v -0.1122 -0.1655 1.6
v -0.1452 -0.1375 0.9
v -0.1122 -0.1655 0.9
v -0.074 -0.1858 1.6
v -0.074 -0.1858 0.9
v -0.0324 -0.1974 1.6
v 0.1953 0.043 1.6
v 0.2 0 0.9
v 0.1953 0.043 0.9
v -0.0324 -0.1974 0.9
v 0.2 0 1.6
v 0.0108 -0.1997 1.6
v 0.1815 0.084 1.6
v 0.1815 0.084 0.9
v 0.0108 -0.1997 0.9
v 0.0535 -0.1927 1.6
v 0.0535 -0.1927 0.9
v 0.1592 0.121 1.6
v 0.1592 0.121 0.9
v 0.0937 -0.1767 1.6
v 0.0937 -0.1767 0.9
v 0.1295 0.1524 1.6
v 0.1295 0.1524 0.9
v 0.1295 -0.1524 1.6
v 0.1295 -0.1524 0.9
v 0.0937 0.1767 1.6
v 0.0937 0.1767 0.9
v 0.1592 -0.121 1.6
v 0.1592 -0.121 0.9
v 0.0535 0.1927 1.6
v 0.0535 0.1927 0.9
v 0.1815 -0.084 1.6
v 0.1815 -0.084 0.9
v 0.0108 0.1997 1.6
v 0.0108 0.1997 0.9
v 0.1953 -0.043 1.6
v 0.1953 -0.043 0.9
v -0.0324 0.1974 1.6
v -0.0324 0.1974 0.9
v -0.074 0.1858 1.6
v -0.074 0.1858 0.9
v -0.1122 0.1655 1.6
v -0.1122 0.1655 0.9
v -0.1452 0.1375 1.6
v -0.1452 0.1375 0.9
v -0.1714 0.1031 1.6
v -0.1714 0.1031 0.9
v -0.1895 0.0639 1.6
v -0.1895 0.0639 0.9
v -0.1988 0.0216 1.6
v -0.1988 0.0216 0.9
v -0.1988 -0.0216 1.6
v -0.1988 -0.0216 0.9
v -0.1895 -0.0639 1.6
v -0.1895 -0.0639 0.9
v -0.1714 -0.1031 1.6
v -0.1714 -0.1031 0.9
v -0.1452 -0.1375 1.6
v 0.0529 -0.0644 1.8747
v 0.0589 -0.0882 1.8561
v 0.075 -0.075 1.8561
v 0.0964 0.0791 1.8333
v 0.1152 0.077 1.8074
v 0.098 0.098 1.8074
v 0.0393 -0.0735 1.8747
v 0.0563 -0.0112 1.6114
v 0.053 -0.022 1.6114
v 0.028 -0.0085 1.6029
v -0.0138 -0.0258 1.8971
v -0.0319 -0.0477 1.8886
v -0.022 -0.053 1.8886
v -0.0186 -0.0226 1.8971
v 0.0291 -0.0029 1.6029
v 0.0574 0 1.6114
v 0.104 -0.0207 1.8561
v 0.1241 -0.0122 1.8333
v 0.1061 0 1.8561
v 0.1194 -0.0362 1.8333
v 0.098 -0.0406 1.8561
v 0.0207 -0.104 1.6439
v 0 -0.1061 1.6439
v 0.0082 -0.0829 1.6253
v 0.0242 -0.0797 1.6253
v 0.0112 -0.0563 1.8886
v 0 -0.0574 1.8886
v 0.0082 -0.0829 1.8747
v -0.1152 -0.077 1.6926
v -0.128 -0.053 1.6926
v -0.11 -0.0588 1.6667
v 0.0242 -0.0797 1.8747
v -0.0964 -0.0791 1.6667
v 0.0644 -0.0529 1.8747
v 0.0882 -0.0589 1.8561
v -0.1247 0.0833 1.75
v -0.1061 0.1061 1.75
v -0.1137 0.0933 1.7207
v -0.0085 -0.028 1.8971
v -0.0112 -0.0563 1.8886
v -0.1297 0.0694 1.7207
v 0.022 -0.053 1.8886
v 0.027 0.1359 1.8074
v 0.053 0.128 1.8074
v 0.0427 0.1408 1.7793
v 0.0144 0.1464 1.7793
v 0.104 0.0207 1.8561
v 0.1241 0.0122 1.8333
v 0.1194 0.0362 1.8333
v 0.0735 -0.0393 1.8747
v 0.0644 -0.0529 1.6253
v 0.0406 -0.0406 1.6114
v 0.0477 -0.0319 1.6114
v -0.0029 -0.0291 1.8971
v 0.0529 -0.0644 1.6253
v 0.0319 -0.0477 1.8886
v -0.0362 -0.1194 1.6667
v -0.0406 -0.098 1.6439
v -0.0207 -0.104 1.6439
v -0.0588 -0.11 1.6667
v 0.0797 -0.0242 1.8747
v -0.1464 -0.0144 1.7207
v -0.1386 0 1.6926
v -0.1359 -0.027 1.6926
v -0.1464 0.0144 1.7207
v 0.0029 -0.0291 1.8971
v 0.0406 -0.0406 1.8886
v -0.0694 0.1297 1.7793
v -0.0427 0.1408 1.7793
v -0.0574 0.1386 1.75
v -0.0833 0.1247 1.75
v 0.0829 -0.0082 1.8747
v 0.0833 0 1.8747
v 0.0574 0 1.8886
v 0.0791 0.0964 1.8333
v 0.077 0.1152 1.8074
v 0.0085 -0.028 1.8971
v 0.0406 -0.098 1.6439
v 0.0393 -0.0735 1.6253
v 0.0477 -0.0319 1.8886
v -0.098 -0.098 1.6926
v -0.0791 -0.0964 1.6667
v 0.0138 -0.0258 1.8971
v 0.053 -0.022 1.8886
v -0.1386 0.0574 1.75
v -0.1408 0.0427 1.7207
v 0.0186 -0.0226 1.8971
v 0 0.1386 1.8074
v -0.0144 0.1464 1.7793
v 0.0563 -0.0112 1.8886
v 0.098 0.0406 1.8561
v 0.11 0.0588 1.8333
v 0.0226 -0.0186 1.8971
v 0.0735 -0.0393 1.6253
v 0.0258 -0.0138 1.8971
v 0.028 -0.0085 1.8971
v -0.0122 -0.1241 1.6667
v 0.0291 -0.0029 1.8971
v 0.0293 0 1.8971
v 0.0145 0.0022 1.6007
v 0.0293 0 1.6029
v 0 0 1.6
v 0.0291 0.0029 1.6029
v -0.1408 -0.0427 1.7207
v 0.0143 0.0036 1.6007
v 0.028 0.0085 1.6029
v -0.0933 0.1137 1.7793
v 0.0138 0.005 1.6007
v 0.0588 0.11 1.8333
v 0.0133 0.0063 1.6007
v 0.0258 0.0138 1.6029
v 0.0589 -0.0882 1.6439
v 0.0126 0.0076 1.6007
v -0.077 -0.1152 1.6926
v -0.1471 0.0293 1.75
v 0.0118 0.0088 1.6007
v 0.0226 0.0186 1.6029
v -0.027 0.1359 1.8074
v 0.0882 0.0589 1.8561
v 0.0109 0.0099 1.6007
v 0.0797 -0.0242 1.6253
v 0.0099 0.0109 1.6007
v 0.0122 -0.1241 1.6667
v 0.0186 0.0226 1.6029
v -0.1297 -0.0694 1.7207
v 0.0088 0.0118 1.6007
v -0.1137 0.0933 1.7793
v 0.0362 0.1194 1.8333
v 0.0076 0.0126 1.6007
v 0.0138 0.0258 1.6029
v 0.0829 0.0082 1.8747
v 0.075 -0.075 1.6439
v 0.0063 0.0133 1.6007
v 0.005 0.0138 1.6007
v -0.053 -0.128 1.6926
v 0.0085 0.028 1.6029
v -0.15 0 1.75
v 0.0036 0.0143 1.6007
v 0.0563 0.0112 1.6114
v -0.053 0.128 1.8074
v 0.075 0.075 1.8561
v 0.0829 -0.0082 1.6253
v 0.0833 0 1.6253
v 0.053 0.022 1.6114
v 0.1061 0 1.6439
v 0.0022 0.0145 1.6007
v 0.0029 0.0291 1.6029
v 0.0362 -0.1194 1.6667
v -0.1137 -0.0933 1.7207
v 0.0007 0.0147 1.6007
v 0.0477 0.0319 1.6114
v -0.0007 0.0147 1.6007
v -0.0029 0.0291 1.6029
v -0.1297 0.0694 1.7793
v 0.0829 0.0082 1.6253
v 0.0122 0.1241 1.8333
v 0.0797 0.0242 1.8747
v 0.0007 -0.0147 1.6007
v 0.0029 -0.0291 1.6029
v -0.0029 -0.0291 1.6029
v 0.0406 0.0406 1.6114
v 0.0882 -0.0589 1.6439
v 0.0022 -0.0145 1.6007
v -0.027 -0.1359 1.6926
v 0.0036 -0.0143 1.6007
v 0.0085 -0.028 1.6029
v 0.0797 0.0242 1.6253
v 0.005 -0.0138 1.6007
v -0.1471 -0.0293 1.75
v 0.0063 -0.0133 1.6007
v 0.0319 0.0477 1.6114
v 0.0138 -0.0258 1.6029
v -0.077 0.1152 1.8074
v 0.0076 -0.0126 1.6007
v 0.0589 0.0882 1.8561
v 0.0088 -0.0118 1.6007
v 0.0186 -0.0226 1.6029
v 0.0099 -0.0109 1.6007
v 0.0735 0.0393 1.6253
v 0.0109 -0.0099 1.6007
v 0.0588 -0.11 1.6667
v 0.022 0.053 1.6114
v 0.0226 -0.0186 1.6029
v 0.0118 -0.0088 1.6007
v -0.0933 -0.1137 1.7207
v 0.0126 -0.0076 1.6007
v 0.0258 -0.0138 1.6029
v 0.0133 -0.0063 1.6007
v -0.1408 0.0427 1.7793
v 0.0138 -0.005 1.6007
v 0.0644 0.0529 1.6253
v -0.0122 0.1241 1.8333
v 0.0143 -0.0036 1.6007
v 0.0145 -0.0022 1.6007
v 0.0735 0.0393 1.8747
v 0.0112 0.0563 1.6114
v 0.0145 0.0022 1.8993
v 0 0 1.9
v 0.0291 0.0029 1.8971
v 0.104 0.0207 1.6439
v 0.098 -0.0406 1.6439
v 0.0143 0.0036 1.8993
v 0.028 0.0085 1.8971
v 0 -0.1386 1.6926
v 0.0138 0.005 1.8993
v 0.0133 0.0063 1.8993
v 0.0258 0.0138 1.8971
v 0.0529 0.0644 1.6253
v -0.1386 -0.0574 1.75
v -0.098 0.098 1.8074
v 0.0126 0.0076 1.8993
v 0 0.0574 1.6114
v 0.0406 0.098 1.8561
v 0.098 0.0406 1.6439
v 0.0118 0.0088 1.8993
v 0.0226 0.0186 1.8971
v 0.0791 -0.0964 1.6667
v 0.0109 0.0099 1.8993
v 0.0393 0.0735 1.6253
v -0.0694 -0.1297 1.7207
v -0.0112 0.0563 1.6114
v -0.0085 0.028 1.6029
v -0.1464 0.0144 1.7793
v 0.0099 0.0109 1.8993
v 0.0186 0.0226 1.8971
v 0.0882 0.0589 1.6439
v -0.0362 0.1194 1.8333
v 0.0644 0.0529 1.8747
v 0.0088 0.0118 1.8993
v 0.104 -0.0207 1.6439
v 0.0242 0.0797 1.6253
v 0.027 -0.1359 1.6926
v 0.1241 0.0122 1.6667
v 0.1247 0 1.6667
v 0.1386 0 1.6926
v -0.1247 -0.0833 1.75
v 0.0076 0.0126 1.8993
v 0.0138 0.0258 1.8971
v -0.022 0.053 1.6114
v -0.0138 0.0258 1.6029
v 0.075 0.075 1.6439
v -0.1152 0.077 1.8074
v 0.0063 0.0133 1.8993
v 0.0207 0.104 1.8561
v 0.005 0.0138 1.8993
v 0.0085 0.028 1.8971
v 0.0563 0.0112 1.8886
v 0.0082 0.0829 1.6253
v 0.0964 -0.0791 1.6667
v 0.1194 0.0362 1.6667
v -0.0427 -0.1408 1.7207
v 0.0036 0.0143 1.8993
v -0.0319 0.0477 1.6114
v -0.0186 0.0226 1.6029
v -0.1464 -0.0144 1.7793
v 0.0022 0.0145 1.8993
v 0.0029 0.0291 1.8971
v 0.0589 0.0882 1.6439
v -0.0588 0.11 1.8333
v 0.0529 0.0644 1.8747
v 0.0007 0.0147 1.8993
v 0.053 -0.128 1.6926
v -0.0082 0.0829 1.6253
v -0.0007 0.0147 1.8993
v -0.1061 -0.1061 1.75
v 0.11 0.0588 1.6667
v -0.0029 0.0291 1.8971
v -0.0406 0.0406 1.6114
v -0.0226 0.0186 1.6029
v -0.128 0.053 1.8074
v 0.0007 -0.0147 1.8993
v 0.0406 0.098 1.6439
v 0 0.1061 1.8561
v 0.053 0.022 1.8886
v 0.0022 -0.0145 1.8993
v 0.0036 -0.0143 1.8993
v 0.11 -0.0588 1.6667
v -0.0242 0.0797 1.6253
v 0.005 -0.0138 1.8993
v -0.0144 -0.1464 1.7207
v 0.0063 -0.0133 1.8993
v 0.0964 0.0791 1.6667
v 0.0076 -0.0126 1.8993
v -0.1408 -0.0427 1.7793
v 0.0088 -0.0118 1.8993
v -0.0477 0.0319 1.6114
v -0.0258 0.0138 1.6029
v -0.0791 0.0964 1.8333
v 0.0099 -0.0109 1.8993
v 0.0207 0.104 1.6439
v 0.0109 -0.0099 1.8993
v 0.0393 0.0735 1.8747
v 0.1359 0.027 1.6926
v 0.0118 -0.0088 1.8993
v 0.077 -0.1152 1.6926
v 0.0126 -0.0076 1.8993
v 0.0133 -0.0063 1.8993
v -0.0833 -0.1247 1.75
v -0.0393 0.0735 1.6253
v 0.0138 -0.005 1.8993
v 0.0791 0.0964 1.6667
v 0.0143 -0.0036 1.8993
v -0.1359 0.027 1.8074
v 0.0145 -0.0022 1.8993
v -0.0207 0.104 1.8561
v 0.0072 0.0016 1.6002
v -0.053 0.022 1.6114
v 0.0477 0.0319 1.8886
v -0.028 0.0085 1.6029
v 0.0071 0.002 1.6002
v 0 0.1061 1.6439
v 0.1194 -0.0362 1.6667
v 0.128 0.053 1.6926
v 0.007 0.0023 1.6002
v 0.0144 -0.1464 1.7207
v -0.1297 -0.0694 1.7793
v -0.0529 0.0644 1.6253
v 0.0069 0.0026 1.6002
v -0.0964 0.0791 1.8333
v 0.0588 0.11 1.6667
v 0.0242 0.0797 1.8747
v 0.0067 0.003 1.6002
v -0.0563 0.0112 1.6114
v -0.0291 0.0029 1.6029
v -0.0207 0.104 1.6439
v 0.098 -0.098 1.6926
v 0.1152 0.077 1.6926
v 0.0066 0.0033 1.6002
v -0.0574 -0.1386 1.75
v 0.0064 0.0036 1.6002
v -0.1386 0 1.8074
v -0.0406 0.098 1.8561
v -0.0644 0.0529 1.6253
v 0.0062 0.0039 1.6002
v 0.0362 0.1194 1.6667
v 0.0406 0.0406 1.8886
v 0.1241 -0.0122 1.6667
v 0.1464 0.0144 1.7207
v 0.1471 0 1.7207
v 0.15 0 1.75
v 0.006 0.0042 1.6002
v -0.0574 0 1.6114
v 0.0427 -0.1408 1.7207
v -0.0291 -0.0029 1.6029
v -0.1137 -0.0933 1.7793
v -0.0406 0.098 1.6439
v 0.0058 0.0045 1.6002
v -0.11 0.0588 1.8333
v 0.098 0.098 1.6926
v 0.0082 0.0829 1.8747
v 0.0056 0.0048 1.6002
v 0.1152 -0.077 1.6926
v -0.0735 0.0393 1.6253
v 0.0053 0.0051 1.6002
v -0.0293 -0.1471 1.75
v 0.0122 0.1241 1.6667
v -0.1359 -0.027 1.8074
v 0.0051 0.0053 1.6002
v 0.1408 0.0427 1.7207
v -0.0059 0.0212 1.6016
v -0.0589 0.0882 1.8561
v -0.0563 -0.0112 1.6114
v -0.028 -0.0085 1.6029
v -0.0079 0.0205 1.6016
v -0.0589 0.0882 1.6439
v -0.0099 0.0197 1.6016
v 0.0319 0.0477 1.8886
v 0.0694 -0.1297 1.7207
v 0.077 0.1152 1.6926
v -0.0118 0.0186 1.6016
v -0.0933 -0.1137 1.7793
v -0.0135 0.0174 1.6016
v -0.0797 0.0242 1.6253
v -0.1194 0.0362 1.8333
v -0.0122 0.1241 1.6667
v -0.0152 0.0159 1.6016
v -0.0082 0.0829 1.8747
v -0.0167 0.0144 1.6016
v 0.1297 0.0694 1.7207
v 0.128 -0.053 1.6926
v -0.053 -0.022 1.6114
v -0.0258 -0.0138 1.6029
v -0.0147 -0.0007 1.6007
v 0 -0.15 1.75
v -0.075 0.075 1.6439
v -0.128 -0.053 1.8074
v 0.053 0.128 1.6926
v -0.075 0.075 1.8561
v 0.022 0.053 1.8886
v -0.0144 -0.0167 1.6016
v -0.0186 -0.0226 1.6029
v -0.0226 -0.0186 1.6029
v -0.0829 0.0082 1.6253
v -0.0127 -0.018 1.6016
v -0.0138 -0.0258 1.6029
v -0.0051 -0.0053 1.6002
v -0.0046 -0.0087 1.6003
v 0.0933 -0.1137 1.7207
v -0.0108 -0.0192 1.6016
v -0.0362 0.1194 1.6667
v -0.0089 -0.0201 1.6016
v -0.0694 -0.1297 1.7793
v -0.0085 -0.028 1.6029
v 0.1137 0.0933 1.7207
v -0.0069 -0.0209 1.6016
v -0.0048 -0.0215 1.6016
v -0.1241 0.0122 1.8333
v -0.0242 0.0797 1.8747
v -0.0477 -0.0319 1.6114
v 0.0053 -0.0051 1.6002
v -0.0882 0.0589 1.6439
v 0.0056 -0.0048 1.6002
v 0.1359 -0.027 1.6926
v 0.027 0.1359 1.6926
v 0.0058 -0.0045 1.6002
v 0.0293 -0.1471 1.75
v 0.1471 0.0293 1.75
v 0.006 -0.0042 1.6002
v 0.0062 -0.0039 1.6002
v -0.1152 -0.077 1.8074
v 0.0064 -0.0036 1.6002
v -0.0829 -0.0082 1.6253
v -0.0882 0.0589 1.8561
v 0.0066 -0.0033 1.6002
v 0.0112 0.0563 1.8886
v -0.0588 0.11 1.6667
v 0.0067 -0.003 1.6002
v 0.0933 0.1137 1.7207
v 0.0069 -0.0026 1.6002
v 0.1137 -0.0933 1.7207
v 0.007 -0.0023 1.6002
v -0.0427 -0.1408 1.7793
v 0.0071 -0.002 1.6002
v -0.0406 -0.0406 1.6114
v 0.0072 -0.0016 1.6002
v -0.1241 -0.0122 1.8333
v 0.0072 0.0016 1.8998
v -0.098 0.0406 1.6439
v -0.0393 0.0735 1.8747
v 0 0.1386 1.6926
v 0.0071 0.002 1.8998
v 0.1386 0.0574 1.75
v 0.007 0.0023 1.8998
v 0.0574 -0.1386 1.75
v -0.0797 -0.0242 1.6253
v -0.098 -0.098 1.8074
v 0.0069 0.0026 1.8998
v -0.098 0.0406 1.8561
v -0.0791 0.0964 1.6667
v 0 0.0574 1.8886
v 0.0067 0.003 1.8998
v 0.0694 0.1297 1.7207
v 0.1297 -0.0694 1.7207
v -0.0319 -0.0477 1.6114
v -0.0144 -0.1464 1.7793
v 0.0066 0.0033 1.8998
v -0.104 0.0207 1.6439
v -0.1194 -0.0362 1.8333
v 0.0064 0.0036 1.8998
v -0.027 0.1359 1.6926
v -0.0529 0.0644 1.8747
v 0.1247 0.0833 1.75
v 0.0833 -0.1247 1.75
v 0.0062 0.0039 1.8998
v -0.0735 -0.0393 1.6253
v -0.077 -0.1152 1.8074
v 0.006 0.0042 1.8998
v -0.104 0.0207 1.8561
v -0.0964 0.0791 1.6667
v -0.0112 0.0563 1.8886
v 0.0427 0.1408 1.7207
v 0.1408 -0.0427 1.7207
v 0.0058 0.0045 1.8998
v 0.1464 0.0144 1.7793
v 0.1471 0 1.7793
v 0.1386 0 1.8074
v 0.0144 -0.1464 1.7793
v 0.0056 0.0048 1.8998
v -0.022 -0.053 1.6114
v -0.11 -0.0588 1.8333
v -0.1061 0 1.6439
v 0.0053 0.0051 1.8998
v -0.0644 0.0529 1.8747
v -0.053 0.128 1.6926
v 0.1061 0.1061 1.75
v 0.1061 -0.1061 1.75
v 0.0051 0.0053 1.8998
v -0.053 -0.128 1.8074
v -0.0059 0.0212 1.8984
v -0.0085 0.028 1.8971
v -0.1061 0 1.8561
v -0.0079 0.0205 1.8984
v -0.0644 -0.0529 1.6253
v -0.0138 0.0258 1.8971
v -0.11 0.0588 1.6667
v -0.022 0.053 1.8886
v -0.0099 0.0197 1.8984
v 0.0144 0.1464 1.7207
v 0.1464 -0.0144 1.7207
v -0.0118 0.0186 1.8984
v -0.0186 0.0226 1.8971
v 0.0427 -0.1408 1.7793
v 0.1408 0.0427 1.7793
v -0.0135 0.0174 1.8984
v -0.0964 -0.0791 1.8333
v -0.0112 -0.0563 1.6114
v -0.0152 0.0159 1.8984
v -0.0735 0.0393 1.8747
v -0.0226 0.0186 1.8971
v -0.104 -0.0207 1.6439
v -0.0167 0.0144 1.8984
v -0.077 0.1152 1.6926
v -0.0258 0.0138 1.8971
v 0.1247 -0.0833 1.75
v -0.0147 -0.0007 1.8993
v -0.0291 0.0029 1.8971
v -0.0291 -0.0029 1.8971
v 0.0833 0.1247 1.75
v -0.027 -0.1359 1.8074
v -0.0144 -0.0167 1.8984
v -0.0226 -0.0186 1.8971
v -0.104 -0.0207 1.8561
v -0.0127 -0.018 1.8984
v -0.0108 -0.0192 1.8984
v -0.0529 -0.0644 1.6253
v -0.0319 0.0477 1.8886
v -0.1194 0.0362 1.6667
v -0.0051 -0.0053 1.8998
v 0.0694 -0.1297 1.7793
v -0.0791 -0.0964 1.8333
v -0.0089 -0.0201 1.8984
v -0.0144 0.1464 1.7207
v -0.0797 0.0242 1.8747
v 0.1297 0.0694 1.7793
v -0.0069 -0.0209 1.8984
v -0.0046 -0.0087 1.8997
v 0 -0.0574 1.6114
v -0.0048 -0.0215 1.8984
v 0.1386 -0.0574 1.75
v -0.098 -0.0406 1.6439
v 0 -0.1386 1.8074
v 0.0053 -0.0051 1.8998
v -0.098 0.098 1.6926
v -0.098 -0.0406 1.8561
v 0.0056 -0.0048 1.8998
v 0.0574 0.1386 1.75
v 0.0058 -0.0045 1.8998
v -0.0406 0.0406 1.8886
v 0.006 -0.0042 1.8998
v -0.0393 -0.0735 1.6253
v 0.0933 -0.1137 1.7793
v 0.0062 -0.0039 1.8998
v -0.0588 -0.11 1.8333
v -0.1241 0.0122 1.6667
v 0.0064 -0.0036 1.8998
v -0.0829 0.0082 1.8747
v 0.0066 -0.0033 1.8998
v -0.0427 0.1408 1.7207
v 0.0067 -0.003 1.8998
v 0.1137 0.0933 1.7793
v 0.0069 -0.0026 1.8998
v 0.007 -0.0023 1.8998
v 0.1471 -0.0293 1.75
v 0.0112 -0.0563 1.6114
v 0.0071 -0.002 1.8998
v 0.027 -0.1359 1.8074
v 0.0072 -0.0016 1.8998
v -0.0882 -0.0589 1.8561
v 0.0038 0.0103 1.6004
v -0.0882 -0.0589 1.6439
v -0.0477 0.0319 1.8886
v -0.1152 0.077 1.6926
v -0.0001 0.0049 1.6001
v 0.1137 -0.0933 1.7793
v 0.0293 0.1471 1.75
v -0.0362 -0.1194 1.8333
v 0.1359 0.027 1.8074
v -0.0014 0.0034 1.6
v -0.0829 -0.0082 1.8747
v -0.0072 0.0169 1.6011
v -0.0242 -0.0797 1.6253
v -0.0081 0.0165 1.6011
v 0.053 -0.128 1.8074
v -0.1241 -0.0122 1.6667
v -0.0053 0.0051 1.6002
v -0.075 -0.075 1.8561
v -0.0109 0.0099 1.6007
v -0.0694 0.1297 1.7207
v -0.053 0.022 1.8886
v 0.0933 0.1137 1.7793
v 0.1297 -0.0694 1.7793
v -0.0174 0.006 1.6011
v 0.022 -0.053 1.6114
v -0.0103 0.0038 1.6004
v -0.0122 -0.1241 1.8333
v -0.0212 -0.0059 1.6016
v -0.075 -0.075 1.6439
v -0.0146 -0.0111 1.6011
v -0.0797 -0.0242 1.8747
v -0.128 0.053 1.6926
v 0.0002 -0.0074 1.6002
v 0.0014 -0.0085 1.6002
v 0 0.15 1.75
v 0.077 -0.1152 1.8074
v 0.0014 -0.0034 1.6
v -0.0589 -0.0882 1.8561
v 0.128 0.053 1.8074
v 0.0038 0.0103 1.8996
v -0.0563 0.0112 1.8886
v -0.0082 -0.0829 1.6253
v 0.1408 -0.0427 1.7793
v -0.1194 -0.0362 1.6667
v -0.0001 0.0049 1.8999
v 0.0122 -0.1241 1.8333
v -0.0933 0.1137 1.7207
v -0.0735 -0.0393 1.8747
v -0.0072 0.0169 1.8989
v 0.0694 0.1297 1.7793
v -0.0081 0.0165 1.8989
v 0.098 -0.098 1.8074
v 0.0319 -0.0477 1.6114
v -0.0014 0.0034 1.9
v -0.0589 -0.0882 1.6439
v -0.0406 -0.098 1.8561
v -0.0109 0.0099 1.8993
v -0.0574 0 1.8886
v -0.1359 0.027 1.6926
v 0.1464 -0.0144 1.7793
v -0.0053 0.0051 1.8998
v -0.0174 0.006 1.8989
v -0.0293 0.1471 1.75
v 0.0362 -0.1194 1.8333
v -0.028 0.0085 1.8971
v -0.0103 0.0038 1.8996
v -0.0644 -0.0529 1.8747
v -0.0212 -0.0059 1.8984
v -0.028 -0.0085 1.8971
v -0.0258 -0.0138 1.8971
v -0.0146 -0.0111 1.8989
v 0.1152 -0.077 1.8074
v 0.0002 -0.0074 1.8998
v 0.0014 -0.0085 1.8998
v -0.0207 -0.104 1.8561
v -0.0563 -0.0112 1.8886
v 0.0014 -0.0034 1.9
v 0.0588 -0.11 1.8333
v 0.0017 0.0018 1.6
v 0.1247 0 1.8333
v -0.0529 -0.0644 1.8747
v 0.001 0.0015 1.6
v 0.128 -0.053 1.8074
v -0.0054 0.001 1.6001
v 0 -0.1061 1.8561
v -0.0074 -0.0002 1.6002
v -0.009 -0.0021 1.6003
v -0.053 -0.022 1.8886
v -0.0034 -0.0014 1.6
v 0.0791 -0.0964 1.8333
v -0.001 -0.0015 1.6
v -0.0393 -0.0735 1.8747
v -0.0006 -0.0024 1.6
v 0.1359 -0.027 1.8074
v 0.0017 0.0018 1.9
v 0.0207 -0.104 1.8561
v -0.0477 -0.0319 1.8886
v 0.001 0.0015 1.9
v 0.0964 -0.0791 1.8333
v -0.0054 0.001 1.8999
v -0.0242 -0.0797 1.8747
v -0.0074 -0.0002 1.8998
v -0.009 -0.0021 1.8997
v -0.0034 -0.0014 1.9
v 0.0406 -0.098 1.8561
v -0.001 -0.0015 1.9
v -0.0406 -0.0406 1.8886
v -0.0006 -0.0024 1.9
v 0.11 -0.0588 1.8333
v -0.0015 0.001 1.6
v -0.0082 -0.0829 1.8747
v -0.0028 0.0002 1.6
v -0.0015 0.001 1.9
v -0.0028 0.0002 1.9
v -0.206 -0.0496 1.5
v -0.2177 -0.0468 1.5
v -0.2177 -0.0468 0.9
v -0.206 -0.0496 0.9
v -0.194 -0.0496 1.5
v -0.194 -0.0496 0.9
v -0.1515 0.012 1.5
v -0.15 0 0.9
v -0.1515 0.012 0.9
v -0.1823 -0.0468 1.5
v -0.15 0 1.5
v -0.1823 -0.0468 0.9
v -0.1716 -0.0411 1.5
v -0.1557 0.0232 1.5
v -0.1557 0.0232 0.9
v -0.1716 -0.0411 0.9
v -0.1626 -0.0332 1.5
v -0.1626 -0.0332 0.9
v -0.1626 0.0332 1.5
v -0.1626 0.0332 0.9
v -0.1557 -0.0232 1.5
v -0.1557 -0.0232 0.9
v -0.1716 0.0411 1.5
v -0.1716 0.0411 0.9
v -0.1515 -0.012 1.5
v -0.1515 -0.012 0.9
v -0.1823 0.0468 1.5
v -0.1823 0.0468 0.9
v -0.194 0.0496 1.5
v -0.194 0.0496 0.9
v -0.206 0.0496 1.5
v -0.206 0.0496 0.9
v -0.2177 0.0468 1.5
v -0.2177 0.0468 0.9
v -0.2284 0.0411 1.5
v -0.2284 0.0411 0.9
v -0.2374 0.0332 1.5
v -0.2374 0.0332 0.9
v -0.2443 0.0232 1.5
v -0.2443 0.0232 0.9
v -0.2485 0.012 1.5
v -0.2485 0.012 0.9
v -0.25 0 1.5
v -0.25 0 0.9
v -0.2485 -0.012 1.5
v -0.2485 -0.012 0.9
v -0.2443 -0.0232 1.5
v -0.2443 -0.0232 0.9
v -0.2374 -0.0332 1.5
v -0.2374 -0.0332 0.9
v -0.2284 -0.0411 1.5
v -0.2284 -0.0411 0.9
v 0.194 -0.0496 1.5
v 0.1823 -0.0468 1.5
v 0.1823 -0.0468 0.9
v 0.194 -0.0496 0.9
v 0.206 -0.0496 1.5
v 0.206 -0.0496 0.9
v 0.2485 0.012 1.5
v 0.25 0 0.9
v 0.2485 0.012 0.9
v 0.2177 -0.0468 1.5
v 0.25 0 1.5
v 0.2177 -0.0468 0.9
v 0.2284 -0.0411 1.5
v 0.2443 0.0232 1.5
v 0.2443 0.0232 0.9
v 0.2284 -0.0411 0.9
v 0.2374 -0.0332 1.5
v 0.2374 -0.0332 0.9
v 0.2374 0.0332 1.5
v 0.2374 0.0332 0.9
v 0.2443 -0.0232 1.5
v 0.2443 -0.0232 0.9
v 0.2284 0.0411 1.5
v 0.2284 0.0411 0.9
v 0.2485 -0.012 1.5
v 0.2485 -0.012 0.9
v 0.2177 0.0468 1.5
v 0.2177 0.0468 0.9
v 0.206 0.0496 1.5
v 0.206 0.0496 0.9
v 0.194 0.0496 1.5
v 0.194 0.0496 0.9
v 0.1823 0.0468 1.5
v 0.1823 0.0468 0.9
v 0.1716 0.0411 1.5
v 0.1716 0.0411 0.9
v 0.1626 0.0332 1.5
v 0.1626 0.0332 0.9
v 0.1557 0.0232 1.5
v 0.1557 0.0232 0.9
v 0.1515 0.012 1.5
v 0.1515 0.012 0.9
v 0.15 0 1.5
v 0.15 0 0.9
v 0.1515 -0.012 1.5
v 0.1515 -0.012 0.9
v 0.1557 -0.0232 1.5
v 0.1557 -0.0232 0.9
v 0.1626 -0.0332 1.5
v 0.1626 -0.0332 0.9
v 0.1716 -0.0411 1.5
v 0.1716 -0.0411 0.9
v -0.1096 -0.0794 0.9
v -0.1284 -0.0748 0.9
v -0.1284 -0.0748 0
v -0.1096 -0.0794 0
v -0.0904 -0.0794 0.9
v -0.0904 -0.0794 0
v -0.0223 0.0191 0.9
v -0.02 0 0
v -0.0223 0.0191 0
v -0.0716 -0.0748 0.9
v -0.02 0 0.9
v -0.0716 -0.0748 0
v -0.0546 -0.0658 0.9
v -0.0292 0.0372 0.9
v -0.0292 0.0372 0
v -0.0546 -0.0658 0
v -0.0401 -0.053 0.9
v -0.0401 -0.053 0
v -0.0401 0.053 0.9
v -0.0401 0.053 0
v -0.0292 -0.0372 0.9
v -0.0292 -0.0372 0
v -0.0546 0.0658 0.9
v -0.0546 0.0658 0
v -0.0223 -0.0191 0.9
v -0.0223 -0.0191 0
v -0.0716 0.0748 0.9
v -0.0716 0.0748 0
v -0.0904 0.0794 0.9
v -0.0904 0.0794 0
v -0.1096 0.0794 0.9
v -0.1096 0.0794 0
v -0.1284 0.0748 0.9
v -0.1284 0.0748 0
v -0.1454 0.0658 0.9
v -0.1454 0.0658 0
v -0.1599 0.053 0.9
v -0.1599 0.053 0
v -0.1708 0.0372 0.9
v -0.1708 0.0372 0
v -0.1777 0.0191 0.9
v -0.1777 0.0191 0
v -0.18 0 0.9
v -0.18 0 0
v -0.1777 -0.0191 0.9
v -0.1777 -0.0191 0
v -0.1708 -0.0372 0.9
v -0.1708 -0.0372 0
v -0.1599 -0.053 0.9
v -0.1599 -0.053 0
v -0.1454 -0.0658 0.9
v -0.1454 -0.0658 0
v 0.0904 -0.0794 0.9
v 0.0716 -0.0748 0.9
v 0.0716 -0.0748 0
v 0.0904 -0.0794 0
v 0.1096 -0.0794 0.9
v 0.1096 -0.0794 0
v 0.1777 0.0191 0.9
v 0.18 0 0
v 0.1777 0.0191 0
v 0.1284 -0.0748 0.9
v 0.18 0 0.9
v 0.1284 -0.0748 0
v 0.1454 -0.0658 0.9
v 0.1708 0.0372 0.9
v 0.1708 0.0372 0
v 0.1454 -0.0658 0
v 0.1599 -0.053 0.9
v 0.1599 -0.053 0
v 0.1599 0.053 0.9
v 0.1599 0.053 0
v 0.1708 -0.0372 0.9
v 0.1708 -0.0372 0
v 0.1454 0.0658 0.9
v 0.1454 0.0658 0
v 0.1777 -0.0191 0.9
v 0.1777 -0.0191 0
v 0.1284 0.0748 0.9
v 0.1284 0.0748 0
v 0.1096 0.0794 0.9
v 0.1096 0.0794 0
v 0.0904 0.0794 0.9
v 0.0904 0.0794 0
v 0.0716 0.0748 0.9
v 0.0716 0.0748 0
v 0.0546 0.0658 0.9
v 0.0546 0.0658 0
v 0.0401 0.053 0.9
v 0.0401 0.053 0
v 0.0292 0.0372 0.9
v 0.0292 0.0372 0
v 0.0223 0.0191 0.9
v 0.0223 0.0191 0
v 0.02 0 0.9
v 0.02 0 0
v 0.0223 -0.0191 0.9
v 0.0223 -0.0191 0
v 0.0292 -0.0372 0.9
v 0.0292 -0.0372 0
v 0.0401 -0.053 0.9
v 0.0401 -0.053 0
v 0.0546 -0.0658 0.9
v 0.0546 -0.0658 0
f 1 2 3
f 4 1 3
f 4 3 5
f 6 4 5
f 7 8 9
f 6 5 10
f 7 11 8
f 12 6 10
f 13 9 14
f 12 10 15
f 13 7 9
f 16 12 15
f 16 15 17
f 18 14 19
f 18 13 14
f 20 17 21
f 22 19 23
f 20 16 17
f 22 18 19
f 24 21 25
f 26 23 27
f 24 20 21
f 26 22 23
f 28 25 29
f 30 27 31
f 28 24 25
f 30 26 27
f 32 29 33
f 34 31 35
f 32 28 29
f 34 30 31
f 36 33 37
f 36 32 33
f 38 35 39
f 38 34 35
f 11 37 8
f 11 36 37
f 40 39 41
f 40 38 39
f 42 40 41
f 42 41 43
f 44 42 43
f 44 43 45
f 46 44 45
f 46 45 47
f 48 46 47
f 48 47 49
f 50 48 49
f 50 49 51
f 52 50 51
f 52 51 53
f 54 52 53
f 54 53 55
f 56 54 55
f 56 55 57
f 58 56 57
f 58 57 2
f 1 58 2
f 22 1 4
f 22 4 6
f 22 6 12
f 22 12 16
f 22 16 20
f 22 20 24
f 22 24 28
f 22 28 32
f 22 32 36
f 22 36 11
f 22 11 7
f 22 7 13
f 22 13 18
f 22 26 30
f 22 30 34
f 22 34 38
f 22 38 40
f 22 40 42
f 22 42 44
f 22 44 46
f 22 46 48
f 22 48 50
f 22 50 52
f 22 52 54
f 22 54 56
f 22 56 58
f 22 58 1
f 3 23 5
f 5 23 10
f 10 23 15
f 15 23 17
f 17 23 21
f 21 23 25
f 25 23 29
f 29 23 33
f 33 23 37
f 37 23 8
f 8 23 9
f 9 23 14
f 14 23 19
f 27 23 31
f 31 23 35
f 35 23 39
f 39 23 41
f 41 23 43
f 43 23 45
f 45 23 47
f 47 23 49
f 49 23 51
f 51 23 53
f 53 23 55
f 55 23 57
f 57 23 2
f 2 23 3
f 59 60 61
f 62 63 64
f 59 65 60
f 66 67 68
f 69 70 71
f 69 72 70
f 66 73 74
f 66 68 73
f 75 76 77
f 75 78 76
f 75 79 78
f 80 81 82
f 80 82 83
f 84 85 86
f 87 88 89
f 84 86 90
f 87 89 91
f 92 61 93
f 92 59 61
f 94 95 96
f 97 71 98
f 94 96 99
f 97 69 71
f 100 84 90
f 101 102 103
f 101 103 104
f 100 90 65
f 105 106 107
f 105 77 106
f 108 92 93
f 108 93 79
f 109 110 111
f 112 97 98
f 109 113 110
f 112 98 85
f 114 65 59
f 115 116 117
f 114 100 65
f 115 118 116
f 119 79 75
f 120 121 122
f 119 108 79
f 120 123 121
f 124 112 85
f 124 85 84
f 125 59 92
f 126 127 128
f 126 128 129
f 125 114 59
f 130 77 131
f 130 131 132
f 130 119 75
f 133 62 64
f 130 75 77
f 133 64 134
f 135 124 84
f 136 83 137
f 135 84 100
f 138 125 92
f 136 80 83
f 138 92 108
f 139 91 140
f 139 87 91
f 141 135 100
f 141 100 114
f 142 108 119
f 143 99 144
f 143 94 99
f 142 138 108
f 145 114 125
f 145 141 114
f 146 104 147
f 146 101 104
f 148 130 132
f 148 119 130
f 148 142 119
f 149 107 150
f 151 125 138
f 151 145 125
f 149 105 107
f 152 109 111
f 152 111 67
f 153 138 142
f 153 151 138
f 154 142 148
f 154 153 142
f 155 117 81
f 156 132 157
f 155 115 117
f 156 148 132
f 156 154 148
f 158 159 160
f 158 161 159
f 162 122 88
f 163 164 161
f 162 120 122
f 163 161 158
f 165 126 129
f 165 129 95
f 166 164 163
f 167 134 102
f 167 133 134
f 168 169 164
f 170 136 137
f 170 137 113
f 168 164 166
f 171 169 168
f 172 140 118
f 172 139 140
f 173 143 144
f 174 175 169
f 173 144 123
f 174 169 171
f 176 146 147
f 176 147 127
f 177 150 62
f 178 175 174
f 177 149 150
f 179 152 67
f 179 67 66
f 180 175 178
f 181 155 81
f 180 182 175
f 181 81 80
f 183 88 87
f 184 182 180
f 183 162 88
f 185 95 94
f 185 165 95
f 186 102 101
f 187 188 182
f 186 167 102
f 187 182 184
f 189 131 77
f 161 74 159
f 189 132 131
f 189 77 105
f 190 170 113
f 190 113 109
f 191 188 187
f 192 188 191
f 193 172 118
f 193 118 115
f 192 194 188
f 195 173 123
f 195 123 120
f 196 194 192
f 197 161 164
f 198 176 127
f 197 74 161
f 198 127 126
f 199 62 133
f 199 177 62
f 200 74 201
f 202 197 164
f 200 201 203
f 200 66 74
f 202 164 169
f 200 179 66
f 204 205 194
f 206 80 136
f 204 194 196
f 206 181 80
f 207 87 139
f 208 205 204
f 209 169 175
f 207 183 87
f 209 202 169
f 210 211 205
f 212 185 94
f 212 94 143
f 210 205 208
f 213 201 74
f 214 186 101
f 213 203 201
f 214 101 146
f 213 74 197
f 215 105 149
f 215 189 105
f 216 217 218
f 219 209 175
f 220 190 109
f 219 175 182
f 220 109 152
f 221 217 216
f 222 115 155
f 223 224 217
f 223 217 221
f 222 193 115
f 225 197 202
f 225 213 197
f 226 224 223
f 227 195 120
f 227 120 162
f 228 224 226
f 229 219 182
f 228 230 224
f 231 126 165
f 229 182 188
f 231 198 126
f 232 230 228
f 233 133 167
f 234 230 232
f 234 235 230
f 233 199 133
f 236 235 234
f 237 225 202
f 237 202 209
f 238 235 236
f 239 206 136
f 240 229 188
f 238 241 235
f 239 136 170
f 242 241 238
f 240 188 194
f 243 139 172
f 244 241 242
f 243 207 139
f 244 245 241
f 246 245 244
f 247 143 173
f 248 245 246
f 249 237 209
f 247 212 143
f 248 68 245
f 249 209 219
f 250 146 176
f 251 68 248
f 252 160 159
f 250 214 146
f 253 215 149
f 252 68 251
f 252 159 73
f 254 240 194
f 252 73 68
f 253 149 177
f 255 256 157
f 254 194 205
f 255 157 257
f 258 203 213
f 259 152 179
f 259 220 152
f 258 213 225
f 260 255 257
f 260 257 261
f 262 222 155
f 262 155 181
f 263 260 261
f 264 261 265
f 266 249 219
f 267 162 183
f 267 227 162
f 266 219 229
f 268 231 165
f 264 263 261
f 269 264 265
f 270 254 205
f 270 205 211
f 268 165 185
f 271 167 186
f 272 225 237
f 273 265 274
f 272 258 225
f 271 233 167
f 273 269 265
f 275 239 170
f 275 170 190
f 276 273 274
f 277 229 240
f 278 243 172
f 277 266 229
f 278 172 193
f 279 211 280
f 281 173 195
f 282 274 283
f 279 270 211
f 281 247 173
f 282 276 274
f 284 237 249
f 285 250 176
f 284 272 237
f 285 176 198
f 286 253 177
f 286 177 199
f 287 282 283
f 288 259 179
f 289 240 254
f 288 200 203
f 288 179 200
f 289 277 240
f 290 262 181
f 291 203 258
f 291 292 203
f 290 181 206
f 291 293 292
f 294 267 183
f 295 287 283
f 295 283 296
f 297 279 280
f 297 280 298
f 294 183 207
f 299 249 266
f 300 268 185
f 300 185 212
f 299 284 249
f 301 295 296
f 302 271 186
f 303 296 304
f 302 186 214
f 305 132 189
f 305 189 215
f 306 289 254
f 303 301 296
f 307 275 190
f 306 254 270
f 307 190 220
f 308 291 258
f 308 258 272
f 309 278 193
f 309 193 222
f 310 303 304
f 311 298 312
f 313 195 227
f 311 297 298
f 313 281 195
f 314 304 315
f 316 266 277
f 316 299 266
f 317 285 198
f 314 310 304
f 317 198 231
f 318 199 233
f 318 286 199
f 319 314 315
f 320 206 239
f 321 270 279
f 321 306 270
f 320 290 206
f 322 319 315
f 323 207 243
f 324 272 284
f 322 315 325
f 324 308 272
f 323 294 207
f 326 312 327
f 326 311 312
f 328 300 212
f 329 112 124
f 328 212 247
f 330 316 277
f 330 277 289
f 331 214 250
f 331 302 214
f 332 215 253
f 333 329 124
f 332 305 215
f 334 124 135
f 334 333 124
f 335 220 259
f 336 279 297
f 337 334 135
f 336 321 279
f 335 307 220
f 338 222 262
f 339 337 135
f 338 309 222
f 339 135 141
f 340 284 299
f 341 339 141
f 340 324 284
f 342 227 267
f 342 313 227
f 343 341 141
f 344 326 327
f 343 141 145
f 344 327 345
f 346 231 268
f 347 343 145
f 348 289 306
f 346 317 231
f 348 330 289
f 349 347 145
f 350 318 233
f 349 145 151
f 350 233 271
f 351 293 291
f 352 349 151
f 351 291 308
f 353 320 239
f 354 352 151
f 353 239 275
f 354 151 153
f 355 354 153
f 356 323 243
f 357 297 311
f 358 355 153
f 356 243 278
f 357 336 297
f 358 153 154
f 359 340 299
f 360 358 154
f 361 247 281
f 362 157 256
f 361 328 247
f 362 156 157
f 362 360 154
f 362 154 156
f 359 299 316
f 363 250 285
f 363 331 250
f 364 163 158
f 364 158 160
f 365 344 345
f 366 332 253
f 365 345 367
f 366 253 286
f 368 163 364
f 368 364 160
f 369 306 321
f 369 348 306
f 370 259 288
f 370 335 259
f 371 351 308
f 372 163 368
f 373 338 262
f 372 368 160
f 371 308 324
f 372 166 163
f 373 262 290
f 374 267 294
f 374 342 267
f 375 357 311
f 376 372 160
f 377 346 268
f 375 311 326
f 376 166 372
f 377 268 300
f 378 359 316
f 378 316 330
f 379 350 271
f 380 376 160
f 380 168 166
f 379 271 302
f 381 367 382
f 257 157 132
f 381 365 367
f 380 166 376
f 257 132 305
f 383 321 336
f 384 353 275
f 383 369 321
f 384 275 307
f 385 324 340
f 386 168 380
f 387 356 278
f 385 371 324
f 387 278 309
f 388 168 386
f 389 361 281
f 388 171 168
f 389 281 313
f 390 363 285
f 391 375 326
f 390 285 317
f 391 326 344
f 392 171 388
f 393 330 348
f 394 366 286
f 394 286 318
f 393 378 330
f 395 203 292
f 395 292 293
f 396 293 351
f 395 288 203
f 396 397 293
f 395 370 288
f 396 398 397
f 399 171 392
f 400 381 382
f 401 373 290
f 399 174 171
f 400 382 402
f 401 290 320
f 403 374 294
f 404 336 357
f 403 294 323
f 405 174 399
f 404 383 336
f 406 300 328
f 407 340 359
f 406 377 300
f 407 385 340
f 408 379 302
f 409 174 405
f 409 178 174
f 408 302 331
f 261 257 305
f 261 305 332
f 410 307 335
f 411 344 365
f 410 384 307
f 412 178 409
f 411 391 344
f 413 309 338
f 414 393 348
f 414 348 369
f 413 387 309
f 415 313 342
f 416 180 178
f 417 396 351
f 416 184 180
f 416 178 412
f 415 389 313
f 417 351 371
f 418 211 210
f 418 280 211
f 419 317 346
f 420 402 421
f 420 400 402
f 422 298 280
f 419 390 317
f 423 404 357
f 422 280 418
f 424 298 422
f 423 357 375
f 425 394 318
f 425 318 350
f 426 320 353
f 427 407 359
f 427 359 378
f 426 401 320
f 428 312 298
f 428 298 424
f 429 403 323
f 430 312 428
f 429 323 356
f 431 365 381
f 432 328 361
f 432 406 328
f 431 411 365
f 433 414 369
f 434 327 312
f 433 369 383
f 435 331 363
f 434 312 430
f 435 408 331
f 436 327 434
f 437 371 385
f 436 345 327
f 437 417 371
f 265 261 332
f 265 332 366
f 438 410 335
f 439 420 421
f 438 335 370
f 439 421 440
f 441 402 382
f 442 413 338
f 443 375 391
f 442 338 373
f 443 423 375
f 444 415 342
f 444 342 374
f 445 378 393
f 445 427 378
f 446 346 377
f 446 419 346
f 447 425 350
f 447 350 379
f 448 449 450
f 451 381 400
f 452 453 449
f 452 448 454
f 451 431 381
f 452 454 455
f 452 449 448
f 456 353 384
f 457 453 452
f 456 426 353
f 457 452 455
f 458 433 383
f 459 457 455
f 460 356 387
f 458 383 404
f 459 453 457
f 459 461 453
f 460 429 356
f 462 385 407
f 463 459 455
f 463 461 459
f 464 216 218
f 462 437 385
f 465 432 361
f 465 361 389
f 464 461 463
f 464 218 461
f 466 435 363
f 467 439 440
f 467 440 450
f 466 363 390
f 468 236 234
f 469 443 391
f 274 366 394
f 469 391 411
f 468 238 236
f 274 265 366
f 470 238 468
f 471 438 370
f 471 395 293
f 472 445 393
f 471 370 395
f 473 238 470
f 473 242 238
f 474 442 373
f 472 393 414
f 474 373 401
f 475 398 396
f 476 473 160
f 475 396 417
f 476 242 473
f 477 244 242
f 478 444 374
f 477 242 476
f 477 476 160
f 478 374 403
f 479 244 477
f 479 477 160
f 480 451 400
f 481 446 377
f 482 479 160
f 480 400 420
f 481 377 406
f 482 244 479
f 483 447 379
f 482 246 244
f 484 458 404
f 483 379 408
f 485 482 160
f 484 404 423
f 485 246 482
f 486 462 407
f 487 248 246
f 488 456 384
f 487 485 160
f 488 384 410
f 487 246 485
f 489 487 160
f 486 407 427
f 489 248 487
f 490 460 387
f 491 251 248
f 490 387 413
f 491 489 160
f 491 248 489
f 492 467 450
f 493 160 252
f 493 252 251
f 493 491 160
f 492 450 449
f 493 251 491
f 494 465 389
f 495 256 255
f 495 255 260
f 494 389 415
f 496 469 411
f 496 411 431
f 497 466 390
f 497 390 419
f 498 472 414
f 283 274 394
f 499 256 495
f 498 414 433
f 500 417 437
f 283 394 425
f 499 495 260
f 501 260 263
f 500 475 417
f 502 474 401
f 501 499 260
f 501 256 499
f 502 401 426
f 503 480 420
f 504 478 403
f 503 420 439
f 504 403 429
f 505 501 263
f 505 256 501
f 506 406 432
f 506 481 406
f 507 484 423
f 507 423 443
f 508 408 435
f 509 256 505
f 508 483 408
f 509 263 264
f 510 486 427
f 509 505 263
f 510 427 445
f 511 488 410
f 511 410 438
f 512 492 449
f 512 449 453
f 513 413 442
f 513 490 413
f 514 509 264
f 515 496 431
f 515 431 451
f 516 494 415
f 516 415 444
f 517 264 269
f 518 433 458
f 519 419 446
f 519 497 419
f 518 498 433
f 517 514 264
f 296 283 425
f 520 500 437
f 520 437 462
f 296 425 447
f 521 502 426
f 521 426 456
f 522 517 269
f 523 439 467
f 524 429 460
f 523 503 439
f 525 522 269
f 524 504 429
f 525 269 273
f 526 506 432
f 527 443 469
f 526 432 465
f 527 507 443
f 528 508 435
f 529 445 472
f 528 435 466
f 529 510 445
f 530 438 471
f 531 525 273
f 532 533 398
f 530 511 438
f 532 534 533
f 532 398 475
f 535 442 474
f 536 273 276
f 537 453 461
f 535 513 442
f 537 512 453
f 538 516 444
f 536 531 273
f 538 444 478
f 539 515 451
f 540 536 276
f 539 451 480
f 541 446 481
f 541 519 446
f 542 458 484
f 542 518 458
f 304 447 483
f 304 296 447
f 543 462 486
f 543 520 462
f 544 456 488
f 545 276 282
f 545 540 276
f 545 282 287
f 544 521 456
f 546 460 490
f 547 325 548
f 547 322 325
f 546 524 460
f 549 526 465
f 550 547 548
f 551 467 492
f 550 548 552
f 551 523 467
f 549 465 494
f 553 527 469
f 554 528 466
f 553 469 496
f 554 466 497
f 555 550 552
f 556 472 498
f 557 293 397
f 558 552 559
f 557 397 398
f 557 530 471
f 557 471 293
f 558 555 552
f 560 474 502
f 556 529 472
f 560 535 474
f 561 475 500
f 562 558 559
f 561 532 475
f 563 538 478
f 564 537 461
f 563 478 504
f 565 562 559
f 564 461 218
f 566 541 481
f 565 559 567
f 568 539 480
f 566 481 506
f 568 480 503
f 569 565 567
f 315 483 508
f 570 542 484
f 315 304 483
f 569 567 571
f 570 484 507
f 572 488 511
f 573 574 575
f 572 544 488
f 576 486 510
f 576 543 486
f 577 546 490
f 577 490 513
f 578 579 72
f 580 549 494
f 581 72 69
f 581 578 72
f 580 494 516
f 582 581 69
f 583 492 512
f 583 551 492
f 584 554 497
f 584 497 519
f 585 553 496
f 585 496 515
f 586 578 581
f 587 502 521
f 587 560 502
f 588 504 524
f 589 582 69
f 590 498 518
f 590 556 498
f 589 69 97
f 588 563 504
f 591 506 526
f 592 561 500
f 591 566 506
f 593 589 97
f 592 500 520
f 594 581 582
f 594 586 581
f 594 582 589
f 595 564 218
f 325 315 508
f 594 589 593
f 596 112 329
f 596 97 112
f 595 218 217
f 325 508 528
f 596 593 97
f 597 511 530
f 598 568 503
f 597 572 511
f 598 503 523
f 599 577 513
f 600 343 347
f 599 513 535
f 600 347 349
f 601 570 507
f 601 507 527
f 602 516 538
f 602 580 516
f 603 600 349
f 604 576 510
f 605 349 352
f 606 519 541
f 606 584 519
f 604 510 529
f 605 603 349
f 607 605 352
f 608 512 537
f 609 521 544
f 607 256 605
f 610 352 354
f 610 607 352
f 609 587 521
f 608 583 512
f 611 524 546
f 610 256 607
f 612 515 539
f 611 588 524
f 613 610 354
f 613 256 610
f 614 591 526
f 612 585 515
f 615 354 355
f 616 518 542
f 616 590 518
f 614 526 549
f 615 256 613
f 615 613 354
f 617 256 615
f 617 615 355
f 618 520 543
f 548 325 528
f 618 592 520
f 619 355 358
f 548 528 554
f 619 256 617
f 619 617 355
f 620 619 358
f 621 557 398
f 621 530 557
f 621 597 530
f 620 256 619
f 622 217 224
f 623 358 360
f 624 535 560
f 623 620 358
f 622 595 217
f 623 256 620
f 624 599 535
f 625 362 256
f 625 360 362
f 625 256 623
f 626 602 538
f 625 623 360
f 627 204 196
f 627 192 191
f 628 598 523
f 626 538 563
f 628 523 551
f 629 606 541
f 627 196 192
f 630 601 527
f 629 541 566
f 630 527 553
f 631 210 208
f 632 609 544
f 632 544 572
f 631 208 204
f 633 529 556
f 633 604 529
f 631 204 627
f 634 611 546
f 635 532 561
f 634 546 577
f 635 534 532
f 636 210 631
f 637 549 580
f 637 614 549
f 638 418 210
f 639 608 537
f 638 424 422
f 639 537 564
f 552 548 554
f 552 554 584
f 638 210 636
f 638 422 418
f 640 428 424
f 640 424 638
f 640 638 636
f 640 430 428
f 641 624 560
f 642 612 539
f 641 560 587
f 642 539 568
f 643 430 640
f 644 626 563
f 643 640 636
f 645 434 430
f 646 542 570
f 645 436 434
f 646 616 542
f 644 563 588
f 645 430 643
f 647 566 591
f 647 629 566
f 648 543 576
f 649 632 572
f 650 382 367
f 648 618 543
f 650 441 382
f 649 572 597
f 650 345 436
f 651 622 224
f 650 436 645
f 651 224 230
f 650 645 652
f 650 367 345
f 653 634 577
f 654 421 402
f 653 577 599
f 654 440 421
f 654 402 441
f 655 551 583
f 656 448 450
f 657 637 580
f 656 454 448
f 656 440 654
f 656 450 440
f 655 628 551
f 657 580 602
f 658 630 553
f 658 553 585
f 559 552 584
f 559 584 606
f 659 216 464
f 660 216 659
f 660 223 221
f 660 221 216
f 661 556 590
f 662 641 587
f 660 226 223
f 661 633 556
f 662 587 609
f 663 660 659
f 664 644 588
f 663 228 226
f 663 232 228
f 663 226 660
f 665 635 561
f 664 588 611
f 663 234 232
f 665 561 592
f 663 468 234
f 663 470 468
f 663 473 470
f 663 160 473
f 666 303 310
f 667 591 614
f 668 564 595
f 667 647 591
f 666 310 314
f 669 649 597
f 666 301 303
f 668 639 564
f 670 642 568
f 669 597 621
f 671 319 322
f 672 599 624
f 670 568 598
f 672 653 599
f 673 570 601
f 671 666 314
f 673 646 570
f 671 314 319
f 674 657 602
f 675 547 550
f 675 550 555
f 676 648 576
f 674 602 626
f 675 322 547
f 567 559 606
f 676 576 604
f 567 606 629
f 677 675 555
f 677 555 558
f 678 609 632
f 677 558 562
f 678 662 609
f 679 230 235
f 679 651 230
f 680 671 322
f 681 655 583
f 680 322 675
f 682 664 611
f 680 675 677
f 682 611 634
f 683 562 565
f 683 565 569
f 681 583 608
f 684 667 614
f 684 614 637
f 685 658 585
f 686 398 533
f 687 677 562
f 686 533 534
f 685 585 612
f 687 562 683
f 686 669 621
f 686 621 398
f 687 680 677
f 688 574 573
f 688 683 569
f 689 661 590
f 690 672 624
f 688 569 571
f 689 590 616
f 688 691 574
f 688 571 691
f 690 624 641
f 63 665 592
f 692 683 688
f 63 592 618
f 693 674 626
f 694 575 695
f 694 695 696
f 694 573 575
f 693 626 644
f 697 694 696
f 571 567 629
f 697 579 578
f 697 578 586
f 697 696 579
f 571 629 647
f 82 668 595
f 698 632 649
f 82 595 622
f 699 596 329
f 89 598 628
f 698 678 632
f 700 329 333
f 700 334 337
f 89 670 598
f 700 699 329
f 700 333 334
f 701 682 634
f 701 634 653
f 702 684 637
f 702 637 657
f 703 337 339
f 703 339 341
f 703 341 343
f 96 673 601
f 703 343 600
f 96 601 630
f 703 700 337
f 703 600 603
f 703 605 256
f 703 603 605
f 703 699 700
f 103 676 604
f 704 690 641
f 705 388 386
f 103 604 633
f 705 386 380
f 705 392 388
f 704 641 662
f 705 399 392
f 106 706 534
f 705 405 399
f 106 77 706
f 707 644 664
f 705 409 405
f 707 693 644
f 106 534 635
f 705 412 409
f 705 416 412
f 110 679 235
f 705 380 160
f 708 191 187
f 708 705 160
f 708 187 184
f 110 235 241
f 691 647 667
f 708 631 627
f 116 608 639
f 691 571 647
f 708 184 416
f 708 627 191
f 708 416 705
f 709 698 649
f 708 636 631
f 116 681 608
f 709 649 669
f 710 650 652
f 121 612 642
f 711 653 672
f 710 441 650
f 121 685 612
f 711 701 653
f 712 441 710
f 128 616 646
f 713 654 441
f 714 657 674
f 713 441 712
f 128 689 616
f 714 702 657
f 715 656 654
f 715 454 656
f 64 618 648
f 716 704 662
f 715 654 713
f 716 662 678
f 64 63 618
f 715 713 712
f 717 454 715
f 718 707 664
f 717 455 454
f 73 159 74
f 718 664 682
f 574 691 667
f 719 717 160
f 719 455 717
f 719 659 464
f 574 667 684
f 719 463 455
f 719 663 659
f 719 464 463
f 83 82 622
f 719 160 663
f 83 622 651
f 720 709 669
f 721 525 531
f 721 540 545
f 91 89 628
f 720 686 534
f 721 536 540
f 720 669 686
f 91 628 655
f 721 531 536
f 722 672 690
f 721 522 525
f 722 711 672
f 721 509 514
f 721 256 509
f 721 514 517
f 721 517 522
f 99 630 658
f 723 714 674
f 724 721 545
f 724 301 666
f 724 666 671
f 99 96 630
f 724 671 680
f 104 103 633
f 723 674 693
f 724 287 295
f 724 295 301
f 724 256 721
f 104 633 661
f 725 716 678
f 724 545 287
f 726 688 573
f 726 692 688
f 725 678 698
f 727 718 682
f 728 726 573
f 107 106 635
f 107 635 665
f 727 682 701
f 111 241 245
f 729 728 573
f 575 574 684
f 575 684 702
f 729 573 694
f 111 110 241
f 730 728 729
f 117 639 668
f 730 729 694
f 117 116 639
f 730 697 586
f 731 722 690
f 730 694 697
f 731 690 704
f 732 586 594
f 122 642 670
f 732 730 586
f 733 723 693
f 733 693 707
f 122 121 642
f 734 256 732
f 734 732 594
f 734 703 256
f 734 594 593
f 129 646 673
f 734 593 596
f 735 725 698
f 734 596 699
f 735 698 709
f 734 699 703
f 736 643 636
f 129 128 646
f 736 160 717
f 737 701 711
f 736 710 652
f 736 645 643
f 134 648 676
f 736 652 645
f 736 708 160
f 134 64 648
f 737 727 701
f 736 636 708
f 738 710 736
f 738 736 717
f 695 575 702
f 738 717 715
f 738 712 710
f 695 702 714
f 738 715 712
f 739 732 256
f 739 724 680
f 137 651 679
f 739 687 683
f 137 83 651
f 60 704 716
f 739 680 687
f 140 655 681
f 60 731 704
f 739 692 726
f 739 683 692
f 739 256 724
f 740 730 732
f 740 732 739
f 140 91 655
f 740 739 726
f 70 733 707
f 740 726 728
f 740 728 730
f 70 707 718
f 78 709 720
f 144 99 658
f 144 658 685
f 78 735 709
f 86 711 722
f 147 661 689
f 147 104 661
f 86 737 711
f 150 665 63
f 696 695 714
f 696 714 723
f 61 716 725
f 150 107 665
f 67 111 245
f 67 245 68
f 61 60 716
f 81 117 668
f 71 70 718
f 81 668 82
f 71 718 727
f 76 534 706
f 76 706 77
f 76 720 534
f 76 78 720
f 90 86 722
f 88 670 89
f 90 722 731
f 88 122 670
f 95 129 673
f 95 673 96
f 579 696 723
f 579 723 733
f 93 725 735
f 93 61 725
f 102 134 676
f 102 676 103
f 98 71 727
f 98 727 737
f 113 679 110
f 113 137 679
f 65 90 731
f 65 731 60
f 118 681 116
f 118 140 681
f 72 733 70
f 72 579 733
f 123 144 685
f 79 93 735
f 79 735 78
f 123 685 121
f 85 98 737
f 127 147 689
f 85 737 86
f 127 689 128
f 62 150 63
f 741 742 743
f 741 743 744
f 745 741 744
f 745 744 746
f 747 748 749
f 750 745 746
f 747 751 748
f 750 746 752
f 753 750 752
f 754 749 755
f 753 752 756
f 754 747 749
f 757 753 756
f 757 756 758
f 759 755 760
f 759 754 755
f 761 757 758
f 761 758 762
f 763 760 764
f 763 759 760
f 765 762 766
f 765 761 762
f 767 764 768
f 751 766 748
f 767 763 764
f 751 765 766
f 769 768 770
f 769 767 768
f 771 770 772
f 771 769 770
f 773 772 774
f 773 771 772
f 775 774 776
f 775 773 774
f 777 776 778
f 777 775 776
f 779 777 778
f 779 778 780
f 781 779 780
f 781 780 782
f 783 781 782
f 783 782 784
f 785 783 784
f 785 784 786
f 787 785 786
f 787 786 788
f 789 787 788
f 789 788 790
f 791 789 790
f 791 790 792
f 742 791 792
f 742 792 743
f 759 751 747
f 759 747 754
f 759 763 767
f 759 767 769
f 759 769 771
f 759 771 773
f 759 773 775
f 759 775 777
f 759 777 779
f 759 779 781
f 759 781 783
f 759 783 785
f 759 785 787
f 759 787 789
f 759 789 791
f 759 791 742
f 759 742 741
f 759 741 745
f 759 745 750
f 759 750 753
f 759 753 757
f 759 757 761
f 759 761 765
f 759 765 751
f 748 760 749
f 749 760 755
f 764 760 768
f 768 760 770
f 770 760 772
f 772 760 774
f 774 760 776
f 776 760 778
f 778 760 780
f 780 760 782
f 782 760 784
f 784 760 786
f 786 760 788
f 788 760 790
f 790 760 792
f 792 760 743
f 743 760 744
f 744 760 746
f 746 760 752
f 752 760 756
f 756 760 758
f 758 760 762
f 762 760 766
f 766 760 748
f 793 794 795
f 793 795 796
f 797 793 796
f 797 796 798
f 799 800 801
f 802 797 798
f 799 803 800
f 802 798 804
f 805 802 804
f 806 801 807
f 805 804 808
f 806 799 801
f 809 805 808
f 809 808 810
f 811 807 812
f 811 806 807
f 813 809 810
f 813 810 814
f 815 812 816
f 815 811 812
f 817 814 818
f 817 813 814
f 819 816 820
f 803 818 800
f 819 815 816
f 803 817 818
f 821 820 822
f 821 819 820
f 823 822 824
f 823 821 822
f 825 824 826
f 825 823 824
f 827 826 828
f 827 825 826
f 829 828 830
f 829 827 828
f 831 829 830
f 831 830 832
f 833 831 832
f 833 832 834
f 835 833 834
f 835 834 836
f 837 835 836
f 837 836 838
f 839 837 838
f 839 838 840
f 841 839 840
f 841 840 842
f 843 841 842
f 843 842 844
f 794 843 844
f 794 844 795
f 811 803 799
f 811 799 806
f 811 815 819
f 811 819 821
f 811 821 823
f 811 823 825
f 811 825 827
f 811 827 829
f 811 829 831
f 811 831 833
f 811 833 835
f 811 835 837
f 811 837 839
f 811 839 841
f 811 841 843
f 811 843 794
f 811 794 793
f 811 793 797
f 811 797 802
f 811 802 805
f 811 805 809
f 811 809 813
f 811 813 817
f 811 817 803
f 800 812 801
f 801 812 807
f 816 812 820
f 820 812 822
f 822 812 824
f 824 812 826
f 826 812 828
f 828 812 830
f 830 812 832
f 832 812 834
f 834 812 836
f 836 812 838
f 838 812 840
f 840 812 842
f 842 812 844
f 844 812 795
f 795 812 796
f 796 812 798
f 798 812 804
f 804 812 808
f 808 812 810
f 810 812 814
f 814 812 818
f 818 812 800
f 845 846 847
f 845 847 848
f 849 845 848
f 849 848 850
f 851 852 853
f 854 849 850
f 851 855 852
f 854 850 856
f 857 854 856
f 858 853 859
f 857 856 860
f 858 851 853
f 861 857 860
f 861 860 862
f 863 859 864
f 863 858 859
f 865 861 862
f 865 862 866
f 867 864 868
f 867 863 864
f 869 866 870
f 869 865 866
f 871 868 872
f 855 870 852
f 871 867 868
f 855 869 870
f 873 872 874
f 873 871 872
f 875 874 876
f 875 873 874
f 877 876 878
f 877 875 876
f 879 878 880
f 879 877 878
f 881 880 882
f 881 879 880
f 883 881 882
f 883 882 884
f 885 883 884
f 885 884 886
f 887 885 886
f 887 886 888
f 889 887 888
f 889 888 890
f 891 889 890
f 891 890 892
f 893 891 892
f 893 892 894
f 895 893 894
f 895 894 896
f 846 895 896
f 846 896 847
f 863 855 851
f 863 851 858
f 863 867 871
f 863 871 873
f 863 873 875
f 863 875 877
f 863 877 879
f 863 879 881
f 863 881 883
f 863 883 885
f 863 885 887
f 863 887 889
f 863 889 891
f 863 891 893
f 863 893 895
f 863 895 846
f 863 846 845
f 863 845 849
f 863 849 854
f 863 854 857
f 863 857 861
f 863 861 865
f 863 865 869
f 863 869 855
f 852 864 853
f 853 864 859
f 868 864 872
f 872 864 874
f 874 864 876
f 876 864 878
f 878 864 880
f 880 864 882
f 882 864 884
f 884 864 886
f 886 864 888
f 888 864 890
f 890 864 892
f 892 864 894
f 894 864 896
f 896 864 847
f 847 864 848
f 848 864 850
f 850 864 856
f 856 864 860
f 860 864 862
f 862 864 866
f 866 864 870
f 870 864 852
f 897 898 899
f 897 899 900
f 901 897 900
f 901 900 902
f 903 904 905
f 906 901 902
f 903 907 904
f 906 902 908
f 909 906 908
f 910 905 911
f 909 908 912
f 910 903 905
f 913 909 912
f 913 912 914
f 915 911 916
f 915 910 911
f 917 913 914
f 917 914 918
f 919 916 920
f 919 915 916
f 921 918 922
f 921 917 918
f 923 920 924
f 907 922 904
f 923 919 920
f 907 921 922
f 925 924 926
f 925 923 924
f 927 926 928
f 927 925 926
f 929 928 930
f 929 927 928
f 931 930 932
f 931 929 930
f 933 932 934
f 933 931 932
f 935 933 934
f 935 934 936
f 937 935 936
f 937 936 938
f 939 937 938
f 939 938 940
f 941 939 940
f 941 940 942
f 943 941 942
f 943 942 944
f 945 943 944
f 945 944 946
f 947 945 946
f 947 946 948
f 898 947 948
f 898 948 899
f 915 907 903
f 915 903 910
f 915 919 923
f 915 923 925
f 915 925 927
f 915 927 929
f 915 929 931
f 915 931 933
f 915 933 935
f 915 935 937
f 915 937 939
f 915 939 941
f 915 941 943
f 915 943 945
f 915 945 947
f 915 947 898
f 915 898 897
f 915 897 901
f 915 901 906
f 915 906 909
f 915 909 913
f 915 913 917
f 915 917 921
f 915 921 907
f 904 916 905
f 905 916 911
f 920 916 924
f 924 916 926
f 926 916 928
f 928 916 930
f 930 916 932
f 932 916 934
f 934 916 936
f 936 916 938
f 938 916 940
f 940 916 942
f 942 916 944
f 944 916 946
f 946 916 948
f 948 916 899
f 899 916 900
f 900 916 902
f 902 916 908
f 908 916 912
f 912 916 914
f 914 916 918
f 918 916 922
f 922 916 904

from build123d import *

# Parameters (mm, degrees)
CYLINDER_R        = 0.2
CYLINDER_DEPTH    = 0.7
CYLINDER001_R     = 0.05
CYLINDER001_DEPTH = 0.6
CYLINDER002_R     = 0.05
CYLINDER002_DEPTH = 0.6
CYLINDER003_R     = 0.08
CYLINDER003_DEPTH = 0.9
CYLINDER004_R     = 0.08
CYLINDER004_DEPTH = 0.9


with BuildPart() as trunk:
    # Cylinder → Cylinder (new body)
    with BuildSketch(Plane.XY.offset(0.9)):
        Circle(CYLINDER_R)
    extrude(amount=CYLINDER_DEPTH)


with BuildPart() as head:
    # Sphere → Sphere (revolve)
    with BuildSketch(Plane(origin=(0, 0, 1.75), x_dir=(1, 0, 0), z_dir=(0, -1, 0))):
        with BuildLine():
            ThreePointArc((0, -0.15), (0.15, 0), (0, 0.15))
            Line((0, 0.15), (0, -0.15))
        make_face()
    revolve(axis=Axis((0, 0, 1.75), (0, 0, 1)))


with BuildPart() as left_arm:
    # Cylinder001 → Cylinder001 (new body)
    with BuildSketch(Plane(origin=(-0.2, 0, 0.9), x_dir=(1, 0, 0), z_dir=(0, 0, 1))):
        Circle(CYLINDER001_R)
    extrude(amount=CYLINDER001_DEPTH)


with BuildPart() as right_arm:
    # Cylinder002 → Cylinder002 (new body)
    with BuildSketch(Plane(origin=(0.2, 0, 0.9), x_dir=(1, 0, 0), z_dir=(0, 0, 1))):
        Circle(CYLINDER002_R)
    extrude(amount=CYLINDER002_DEPTH)


with BuildPart() as left_leg:
    # Cylinder003 → Cylinder003 (new body)
    with BuildSketch(Plane(origin=(-0.1, 0, 0), x_dir=(1, 0, 0), z_dir=(0, 0, 1))):
        Circle(CYLINDER003_R)
    extrude(amount=CYLINDER003_DEPTH)


with BuildPart() as right_leg:
    # Cylinder004 → Cylinder004 (new body)
    with BuildSketch(Plane(origin=(0.1, 0, 0), x_dir=(1, 0, 0), z_dir=(0, 0, 1))):
        Circle(CYLINDER004_R)
    extrude(amount=CYLINDER004_DEPTH)


solid = Compound([trunk.part, head.part, left_arm.part, right_arm.part, left_leg.part, right_leg.part])
